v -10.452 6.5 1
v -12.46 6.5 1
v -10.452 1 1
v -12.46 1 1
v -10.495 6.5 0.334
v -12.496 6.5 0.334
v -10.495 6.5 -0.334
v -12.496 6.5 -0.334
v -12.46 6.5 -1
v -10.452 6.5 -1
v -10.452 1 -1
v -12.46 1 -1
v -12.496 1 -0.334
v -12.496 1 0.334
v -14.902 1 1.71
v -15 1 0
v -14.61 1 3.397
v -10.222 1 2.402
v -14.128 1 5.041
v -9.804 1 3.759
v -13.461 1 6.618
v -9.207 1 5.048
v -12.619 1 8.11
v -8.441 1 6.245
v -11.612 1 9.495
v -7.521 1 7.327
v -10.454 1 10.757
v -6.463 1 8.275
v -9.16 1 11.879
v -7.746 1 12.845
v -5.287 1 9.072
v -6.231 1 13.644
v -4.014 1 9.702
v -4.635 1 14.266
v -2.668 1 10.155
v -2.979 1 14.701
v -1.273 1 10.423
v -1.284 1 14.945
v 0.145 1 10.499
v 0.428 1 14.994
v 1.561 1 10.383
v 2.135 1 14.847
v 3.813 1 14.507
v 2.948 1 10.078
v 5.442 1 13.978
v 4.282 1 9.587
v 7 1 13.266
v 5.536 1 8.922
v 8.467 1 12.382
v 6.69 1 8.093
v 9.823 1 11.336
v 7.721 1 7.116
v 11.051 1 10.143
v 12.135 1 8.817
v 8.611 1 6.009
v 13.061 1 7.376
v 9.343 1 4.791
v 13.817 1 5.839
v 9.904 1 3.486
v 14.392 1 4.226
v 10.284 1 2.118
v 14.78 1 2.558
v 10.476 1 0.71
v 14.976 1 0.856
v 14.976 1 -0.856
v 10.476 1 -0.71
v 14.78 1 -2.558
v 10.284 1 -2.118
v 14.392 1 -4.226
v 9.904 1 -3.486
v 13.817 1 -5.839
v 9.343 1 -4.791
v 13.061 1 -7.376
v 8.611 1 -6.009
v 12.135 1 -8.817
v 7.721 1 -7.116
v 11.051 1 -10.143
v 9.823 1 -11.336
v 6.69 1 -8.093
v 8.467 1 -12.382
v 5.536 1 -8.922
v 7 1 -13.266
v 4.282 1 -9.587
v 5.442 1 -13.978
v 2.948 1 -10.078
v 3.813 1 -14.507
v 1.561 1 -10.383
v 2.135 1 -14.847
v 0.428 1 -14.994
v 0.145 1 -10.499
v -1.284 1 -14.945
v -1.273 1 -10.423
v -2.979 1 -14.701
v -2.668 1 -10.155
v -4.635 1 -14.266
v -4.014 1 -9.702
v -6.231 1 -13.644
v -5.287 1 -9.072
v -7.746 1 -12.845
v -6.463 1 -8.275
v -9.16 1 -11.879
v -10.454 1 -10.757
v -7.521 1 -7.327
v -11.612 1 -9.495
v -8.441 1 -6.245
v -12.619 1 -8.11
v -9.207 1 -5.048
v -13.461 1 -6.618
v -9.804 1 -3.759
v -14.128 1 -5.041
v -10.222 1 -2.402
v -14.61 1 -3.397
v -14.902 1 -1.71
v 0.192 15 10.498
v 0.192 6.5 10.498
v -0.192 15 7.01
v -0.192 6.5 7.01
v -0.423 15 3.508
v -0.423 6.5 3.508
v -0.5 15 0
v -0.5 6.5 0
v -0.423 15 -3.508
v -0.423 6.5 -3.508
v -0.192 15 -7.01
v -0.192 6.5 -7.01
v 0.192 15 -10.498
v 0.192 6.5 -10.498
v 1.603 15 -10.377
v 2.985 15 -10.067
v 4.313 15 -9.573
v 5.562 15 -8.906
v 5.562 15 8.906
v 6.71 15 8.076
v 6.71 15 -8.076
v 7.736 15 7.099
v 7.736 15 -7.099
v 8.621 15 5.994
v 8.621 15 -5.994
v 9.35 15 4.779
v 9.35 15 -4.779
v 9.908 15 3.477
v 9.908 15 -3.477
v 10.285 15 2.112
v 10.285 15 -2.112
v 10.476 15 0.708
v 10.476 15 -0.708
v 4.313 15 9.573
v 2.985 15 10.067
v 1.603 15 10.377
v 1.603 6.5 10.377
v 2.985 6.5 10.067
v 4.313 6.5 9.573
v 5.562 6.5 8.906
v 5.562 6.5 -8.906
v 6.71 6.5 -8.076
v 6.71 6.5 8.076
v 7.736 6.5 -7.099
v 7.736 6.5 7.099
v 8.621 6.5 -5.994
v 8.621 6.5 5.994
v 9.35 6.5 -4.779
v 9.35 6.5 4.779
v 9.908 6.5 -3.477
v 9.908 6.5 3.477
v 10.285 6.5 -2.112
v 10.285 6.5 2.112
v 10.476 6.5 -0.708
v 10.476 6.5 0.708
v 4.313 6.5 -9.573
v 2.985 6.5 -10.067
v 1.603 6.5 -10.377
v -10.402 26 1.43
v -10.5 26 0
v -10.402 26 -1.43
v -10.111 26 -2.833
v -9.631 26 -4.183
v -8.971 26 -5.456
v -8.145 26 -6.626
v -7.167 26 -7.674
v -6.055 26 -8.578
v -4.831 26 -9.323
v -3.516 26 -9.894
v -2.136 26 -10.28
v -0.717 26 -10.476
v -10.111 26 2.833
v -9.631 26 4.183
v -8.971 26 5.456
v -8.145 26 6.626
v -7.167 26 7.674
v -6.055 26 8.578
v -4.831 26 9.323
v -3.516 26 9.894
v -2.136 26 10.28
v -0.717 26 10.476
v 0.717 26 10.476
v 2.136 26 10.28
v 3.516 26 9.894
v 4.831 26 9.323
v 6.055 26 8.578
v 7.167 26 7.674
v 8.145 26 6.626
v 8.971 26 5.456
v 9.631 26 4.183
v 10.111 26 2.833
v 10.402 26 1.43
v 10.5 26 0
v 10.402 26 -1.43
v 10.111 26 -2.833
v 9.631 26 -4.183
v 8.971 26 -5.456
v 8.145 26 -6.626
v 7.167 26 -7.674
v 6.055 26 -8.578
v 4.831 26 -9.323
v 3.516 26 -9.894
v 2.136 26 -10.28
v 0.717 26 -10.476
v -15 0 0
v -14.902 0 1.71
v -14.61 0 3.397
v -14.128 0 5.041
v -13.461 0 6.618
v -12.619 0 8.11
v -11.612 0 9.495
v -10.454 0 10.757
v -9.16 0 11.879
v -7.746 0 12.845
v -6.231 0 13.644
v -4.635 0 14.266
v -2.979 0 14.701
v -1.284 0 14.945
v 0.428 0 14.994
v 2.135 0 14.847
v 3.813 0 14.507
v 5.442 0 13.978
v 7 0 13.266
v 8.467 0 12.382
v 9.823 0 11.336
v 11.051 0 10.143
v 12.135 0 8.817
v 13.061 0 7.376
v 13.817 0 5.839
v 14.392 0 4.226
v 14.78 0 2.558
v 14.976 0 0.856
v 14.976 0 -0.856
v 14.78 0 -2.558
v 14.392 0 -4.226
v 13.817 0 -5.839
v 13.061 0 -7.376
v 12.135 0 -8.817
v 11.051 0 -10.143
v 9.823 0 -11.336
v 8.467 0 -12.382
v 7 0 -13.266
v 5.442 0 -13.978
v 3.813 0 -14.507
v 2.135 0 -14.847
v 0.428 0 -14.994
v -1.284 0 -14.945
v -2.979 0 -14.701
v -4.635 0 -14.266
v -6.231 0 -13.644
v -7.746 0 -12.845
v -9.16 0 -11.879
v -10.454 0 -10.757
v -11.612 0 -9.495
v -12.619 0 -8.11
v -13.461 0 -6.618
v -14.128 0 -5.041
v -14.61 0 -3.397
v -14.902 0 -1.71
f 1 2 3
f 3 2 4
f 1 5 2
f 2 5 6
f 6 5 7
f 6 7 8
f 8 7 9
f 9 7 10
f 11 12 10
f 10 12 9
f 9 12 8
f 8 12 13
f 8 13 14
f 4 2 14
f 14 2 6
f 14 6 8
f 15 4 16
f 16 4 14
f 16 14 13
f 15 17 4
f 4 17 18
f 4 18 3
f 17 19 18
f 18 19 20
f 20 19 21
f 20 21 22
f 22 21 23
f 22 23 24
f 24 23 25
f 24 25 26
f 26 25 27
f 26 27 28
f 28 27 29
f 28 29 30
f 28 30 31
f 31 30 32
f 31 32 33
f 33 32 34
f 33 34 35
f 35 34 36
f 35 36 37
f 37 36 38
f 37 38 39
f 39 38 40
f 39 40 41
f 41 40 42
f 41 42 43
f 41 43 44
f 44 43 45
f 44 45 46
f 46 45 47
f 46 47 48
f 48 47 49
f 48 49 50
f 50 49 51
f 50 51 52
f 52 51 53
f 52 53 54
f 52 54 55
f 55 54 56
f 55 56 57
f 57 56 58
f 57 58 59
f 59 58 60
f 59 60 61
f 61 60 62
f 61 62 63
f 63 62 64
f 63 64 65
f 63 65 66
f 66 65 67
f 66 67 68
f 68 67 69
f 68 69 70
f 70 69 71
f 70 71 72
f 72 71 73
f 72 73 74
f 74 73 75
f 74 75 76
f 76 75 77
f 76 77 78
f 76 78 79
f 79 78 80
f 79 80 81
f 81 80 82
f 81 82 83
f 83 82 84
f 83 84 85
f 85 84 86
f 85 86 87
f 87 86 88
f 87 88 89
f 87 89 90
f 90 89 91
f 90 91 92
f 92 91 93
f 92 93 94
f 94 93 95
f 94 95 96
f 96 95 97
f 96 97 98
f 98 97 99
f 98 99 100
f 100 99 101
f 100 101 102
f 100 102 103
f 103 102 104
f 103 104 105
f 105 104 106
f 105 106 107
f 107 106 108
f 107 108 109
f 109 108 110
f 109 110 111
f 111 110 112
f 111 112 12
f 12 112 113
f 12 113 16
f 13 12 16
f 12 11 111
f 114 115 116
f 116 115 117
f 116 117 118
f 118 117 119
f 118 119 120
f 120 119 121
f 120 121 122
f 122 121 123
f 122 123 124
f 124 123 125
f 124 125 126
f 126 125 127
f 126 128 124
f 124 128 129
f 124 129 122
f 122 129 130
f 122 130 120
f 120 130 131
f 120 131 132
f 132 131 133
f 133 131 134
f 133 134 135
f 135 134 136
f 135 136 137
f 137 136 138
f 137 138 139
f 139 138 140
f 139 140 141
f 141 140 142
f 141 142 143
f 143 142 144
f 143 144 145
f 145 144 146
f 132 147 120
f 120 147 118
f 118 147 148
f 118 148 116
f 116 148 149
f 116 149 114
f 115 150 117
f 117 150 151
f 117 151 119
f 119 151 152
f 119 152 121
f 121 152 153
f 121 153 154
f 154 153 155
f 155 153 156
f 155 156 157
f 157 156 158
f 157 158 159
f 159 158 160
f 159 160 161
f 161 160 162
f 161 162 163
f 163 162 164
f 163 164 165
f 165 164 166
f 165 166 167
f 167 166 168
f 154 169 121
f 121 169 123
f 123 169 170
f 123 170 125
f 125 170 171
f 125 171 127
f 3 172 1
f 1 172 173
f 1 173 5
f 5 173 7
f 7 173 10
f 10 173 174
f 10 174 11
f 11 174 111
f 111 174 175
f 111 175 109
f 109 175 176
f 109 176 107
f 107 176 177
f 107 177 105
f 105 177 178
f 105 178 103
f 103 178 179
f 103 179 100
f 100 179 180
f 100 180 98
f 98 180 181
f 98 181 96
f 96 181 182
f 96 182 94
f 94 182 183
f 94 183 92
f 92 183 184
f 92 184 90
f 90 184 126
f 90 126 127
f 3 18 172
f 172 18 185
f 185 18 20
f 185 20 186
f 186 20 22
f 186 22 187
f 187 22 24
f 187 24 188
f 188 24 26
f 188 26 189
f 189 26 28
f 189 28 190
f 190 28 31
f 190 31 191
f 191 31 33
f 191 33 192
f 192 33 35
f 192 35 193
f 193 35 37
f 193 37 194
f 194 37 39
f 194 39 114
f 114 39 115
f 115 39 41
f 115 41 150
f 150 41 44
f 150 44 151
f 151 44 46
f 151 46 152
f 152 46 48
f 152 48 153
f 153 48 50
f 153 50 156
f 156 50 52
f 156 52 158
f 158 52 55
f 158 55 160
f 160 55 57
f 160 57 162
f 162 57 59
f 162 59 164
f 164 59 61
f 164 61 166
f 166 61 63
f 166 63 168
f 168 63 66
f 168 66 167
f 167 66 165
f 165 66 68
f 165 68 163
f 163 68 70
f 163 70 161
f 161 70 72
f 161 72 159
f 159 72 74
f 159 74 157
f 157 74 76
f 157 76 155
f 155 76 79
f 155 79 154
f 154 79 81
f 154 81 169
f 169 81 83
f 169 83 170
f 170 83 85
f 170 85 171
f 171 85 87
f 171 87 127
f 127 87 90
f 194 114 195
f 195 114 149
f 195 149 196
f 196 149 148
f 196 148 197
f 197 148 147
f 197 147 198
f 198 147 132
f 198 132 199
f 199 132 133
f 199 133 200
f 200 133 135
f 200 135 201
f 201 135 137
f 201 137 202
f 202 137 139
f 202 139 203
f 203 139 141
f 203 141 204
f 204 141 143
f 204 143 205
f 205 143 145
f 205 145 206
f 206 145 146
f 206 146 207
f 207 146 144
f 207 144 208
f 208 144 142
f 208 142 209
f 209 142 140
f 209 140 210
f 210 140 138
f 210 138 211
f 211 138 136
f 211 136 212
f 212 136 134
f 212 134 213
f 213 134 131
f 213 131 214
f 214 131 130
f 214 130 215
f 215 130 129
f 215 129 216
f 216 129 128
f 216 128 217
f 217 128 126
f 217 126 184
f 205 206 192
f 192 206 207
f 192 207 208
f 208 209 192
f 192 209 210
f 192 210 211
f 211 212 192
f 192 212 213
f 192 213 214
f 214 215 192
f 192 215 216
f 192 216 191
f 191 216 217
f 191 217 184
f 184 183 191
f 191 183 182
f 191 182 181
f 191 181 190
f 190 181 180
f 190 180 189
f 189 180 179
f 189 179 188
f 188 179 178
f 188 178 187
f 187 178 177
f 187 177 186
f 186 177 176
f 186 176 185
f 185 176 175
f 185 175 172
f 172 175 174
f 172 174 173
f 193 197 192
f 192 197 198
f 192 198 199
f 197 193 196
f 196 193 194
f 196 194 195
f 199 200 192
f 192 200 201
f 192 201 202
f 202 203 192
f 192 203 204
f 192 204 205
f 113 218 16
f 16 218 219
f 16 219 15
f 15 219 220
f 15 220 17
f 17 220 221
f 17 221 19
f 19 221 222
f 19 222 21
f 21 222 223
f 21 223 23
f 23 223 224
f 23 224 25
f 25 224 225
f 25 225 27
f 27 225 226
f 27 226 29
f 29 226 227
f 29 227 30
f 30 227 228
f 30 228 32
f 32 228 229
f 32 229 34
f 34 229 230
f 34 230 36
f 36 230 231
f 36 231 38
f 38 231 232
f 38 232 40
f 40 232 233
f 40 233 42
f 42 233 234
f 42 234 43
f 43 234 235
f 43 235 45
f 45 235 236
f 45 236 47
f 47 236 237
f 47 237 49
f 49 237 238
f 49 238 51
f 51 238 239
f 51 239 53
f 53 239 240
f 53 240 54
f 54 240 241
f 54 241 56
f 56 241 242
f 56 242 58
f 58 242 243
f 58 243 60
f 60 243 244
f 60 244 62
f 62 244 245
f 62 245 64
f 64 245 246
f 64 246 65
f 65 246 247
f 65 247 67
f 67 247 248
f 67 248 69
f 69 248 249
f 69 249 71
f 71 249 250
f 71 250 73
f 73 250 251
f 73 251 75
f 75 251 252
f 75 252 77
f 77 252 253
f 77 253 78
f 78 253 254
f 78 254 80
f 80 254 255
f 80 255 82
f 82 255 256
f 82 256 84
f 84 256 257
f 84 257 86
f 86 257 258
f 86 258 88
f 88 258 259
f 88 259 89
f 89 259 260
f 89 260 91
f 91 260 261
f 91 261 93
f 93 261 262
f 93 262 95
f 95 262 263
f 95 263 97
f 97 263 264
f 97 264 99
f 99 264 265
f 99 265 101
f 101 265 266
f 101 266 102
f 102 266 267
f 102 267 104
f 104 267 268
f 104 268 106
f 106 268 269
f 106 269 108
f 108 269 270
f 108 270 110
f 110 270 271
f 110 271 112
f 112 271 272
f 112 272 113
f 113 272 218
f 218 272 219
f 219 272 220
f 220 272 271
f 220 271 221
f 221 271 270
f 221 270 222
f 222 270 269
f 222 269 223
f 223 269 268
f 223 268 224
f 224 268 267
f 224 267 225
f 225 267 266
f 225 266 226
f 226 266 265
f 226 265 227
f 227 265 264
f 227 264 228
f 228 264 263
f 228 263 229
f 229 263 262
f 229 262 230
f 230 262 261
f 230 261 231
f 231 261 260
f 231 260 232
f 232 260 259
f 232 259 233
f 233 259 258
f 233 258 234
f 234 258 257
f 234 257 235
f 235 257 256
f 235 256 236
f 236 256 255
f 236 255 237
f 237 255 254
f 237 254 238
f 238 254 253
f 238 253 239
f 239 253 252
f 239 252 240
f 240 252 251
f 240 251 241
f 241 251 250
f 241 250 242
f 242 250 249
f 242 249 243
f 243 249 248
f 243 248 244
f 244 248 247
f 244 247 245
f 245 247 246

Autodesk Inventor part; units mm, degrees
ref_plane "YZ Plane" through (0, 0, 0) normal (1, 0, 0) x (0, 1, 0)
ref_plane "XZ Plane" through (0, 0, 0) normal (0, 1, 0) x (-1, 0, 0)
sketch "スケッチ1" plane through (0, 0, 0) normal (0, 1, 0) x (-1, 0, 0)
  circle A0 centre (0, 0) radius 15
  dimension "d0" = 30
extrude "押し出し1" add sketch "スケッチ1" along normal blind 1
sketch "スケッチ2" plane through (0, 1, 0) normal (0, 1, 0) x (1, 0, 0)
  circle A0 centre (0, 0) radius 10.5
  dimension "d3" = 21
extrude "押し出し2" add sketch "スケッチ2" along normal blind 25
ref_plane "作業平面1" through (0, 6.5, 0) normal (0, 1, 0) x (1, 0, 0)
sketch "スケッチ4" plane through (0, 6.5, 0) normal (0, 1, 0) x (1, 0, 0)
  circle A0 centre (0, 0) radius 10.5 projected
  circle A1 centre (79.5, 0) radius 80
  point P0 (0.1918, 10.4982)
  point P1 (0.1918, -10.4982)
  dimension "d9" = 79.5
  dimension "d10" = 160
extrude "押し出し3" cut sketch "スケッチ4" along normal blind 8.5 contours A0 A1 picked at (3.218, 0)
sketch "スケッチ5" plane through (0, 1, 0) normal (0, 1, 0) x (1, 0, 0)
  line L0 (-15, 1) -> (-8.9813, 1)
  line L1 (-8.9813, 1) -> (-8.9813, -1)
  line L2 (-8.9813, -1) -> (-15, -1)
  line L3 (-15, -1) -> (-15, 1)
  circle A0 centre (0, 0) radius 15 projected
  circle A1 centre (0, 0) radius 12.5
  point P0 (-15, 0)
  point P1 (-14.9666, 1)
  point P2 (-14.9666, -1)
  point P3 (-12.4599, 1)
  point P4 (-12.4599, -1)
  dimension "d11" = 2
  dimension "d14" = 25
extrude "押し出し4" add sketch "スケッチ5" along normal blind 5.5 contours L0 L1 L2 A1 picked at (-10.1527, -0.1112)
properties part number "ギア軸_中心"
